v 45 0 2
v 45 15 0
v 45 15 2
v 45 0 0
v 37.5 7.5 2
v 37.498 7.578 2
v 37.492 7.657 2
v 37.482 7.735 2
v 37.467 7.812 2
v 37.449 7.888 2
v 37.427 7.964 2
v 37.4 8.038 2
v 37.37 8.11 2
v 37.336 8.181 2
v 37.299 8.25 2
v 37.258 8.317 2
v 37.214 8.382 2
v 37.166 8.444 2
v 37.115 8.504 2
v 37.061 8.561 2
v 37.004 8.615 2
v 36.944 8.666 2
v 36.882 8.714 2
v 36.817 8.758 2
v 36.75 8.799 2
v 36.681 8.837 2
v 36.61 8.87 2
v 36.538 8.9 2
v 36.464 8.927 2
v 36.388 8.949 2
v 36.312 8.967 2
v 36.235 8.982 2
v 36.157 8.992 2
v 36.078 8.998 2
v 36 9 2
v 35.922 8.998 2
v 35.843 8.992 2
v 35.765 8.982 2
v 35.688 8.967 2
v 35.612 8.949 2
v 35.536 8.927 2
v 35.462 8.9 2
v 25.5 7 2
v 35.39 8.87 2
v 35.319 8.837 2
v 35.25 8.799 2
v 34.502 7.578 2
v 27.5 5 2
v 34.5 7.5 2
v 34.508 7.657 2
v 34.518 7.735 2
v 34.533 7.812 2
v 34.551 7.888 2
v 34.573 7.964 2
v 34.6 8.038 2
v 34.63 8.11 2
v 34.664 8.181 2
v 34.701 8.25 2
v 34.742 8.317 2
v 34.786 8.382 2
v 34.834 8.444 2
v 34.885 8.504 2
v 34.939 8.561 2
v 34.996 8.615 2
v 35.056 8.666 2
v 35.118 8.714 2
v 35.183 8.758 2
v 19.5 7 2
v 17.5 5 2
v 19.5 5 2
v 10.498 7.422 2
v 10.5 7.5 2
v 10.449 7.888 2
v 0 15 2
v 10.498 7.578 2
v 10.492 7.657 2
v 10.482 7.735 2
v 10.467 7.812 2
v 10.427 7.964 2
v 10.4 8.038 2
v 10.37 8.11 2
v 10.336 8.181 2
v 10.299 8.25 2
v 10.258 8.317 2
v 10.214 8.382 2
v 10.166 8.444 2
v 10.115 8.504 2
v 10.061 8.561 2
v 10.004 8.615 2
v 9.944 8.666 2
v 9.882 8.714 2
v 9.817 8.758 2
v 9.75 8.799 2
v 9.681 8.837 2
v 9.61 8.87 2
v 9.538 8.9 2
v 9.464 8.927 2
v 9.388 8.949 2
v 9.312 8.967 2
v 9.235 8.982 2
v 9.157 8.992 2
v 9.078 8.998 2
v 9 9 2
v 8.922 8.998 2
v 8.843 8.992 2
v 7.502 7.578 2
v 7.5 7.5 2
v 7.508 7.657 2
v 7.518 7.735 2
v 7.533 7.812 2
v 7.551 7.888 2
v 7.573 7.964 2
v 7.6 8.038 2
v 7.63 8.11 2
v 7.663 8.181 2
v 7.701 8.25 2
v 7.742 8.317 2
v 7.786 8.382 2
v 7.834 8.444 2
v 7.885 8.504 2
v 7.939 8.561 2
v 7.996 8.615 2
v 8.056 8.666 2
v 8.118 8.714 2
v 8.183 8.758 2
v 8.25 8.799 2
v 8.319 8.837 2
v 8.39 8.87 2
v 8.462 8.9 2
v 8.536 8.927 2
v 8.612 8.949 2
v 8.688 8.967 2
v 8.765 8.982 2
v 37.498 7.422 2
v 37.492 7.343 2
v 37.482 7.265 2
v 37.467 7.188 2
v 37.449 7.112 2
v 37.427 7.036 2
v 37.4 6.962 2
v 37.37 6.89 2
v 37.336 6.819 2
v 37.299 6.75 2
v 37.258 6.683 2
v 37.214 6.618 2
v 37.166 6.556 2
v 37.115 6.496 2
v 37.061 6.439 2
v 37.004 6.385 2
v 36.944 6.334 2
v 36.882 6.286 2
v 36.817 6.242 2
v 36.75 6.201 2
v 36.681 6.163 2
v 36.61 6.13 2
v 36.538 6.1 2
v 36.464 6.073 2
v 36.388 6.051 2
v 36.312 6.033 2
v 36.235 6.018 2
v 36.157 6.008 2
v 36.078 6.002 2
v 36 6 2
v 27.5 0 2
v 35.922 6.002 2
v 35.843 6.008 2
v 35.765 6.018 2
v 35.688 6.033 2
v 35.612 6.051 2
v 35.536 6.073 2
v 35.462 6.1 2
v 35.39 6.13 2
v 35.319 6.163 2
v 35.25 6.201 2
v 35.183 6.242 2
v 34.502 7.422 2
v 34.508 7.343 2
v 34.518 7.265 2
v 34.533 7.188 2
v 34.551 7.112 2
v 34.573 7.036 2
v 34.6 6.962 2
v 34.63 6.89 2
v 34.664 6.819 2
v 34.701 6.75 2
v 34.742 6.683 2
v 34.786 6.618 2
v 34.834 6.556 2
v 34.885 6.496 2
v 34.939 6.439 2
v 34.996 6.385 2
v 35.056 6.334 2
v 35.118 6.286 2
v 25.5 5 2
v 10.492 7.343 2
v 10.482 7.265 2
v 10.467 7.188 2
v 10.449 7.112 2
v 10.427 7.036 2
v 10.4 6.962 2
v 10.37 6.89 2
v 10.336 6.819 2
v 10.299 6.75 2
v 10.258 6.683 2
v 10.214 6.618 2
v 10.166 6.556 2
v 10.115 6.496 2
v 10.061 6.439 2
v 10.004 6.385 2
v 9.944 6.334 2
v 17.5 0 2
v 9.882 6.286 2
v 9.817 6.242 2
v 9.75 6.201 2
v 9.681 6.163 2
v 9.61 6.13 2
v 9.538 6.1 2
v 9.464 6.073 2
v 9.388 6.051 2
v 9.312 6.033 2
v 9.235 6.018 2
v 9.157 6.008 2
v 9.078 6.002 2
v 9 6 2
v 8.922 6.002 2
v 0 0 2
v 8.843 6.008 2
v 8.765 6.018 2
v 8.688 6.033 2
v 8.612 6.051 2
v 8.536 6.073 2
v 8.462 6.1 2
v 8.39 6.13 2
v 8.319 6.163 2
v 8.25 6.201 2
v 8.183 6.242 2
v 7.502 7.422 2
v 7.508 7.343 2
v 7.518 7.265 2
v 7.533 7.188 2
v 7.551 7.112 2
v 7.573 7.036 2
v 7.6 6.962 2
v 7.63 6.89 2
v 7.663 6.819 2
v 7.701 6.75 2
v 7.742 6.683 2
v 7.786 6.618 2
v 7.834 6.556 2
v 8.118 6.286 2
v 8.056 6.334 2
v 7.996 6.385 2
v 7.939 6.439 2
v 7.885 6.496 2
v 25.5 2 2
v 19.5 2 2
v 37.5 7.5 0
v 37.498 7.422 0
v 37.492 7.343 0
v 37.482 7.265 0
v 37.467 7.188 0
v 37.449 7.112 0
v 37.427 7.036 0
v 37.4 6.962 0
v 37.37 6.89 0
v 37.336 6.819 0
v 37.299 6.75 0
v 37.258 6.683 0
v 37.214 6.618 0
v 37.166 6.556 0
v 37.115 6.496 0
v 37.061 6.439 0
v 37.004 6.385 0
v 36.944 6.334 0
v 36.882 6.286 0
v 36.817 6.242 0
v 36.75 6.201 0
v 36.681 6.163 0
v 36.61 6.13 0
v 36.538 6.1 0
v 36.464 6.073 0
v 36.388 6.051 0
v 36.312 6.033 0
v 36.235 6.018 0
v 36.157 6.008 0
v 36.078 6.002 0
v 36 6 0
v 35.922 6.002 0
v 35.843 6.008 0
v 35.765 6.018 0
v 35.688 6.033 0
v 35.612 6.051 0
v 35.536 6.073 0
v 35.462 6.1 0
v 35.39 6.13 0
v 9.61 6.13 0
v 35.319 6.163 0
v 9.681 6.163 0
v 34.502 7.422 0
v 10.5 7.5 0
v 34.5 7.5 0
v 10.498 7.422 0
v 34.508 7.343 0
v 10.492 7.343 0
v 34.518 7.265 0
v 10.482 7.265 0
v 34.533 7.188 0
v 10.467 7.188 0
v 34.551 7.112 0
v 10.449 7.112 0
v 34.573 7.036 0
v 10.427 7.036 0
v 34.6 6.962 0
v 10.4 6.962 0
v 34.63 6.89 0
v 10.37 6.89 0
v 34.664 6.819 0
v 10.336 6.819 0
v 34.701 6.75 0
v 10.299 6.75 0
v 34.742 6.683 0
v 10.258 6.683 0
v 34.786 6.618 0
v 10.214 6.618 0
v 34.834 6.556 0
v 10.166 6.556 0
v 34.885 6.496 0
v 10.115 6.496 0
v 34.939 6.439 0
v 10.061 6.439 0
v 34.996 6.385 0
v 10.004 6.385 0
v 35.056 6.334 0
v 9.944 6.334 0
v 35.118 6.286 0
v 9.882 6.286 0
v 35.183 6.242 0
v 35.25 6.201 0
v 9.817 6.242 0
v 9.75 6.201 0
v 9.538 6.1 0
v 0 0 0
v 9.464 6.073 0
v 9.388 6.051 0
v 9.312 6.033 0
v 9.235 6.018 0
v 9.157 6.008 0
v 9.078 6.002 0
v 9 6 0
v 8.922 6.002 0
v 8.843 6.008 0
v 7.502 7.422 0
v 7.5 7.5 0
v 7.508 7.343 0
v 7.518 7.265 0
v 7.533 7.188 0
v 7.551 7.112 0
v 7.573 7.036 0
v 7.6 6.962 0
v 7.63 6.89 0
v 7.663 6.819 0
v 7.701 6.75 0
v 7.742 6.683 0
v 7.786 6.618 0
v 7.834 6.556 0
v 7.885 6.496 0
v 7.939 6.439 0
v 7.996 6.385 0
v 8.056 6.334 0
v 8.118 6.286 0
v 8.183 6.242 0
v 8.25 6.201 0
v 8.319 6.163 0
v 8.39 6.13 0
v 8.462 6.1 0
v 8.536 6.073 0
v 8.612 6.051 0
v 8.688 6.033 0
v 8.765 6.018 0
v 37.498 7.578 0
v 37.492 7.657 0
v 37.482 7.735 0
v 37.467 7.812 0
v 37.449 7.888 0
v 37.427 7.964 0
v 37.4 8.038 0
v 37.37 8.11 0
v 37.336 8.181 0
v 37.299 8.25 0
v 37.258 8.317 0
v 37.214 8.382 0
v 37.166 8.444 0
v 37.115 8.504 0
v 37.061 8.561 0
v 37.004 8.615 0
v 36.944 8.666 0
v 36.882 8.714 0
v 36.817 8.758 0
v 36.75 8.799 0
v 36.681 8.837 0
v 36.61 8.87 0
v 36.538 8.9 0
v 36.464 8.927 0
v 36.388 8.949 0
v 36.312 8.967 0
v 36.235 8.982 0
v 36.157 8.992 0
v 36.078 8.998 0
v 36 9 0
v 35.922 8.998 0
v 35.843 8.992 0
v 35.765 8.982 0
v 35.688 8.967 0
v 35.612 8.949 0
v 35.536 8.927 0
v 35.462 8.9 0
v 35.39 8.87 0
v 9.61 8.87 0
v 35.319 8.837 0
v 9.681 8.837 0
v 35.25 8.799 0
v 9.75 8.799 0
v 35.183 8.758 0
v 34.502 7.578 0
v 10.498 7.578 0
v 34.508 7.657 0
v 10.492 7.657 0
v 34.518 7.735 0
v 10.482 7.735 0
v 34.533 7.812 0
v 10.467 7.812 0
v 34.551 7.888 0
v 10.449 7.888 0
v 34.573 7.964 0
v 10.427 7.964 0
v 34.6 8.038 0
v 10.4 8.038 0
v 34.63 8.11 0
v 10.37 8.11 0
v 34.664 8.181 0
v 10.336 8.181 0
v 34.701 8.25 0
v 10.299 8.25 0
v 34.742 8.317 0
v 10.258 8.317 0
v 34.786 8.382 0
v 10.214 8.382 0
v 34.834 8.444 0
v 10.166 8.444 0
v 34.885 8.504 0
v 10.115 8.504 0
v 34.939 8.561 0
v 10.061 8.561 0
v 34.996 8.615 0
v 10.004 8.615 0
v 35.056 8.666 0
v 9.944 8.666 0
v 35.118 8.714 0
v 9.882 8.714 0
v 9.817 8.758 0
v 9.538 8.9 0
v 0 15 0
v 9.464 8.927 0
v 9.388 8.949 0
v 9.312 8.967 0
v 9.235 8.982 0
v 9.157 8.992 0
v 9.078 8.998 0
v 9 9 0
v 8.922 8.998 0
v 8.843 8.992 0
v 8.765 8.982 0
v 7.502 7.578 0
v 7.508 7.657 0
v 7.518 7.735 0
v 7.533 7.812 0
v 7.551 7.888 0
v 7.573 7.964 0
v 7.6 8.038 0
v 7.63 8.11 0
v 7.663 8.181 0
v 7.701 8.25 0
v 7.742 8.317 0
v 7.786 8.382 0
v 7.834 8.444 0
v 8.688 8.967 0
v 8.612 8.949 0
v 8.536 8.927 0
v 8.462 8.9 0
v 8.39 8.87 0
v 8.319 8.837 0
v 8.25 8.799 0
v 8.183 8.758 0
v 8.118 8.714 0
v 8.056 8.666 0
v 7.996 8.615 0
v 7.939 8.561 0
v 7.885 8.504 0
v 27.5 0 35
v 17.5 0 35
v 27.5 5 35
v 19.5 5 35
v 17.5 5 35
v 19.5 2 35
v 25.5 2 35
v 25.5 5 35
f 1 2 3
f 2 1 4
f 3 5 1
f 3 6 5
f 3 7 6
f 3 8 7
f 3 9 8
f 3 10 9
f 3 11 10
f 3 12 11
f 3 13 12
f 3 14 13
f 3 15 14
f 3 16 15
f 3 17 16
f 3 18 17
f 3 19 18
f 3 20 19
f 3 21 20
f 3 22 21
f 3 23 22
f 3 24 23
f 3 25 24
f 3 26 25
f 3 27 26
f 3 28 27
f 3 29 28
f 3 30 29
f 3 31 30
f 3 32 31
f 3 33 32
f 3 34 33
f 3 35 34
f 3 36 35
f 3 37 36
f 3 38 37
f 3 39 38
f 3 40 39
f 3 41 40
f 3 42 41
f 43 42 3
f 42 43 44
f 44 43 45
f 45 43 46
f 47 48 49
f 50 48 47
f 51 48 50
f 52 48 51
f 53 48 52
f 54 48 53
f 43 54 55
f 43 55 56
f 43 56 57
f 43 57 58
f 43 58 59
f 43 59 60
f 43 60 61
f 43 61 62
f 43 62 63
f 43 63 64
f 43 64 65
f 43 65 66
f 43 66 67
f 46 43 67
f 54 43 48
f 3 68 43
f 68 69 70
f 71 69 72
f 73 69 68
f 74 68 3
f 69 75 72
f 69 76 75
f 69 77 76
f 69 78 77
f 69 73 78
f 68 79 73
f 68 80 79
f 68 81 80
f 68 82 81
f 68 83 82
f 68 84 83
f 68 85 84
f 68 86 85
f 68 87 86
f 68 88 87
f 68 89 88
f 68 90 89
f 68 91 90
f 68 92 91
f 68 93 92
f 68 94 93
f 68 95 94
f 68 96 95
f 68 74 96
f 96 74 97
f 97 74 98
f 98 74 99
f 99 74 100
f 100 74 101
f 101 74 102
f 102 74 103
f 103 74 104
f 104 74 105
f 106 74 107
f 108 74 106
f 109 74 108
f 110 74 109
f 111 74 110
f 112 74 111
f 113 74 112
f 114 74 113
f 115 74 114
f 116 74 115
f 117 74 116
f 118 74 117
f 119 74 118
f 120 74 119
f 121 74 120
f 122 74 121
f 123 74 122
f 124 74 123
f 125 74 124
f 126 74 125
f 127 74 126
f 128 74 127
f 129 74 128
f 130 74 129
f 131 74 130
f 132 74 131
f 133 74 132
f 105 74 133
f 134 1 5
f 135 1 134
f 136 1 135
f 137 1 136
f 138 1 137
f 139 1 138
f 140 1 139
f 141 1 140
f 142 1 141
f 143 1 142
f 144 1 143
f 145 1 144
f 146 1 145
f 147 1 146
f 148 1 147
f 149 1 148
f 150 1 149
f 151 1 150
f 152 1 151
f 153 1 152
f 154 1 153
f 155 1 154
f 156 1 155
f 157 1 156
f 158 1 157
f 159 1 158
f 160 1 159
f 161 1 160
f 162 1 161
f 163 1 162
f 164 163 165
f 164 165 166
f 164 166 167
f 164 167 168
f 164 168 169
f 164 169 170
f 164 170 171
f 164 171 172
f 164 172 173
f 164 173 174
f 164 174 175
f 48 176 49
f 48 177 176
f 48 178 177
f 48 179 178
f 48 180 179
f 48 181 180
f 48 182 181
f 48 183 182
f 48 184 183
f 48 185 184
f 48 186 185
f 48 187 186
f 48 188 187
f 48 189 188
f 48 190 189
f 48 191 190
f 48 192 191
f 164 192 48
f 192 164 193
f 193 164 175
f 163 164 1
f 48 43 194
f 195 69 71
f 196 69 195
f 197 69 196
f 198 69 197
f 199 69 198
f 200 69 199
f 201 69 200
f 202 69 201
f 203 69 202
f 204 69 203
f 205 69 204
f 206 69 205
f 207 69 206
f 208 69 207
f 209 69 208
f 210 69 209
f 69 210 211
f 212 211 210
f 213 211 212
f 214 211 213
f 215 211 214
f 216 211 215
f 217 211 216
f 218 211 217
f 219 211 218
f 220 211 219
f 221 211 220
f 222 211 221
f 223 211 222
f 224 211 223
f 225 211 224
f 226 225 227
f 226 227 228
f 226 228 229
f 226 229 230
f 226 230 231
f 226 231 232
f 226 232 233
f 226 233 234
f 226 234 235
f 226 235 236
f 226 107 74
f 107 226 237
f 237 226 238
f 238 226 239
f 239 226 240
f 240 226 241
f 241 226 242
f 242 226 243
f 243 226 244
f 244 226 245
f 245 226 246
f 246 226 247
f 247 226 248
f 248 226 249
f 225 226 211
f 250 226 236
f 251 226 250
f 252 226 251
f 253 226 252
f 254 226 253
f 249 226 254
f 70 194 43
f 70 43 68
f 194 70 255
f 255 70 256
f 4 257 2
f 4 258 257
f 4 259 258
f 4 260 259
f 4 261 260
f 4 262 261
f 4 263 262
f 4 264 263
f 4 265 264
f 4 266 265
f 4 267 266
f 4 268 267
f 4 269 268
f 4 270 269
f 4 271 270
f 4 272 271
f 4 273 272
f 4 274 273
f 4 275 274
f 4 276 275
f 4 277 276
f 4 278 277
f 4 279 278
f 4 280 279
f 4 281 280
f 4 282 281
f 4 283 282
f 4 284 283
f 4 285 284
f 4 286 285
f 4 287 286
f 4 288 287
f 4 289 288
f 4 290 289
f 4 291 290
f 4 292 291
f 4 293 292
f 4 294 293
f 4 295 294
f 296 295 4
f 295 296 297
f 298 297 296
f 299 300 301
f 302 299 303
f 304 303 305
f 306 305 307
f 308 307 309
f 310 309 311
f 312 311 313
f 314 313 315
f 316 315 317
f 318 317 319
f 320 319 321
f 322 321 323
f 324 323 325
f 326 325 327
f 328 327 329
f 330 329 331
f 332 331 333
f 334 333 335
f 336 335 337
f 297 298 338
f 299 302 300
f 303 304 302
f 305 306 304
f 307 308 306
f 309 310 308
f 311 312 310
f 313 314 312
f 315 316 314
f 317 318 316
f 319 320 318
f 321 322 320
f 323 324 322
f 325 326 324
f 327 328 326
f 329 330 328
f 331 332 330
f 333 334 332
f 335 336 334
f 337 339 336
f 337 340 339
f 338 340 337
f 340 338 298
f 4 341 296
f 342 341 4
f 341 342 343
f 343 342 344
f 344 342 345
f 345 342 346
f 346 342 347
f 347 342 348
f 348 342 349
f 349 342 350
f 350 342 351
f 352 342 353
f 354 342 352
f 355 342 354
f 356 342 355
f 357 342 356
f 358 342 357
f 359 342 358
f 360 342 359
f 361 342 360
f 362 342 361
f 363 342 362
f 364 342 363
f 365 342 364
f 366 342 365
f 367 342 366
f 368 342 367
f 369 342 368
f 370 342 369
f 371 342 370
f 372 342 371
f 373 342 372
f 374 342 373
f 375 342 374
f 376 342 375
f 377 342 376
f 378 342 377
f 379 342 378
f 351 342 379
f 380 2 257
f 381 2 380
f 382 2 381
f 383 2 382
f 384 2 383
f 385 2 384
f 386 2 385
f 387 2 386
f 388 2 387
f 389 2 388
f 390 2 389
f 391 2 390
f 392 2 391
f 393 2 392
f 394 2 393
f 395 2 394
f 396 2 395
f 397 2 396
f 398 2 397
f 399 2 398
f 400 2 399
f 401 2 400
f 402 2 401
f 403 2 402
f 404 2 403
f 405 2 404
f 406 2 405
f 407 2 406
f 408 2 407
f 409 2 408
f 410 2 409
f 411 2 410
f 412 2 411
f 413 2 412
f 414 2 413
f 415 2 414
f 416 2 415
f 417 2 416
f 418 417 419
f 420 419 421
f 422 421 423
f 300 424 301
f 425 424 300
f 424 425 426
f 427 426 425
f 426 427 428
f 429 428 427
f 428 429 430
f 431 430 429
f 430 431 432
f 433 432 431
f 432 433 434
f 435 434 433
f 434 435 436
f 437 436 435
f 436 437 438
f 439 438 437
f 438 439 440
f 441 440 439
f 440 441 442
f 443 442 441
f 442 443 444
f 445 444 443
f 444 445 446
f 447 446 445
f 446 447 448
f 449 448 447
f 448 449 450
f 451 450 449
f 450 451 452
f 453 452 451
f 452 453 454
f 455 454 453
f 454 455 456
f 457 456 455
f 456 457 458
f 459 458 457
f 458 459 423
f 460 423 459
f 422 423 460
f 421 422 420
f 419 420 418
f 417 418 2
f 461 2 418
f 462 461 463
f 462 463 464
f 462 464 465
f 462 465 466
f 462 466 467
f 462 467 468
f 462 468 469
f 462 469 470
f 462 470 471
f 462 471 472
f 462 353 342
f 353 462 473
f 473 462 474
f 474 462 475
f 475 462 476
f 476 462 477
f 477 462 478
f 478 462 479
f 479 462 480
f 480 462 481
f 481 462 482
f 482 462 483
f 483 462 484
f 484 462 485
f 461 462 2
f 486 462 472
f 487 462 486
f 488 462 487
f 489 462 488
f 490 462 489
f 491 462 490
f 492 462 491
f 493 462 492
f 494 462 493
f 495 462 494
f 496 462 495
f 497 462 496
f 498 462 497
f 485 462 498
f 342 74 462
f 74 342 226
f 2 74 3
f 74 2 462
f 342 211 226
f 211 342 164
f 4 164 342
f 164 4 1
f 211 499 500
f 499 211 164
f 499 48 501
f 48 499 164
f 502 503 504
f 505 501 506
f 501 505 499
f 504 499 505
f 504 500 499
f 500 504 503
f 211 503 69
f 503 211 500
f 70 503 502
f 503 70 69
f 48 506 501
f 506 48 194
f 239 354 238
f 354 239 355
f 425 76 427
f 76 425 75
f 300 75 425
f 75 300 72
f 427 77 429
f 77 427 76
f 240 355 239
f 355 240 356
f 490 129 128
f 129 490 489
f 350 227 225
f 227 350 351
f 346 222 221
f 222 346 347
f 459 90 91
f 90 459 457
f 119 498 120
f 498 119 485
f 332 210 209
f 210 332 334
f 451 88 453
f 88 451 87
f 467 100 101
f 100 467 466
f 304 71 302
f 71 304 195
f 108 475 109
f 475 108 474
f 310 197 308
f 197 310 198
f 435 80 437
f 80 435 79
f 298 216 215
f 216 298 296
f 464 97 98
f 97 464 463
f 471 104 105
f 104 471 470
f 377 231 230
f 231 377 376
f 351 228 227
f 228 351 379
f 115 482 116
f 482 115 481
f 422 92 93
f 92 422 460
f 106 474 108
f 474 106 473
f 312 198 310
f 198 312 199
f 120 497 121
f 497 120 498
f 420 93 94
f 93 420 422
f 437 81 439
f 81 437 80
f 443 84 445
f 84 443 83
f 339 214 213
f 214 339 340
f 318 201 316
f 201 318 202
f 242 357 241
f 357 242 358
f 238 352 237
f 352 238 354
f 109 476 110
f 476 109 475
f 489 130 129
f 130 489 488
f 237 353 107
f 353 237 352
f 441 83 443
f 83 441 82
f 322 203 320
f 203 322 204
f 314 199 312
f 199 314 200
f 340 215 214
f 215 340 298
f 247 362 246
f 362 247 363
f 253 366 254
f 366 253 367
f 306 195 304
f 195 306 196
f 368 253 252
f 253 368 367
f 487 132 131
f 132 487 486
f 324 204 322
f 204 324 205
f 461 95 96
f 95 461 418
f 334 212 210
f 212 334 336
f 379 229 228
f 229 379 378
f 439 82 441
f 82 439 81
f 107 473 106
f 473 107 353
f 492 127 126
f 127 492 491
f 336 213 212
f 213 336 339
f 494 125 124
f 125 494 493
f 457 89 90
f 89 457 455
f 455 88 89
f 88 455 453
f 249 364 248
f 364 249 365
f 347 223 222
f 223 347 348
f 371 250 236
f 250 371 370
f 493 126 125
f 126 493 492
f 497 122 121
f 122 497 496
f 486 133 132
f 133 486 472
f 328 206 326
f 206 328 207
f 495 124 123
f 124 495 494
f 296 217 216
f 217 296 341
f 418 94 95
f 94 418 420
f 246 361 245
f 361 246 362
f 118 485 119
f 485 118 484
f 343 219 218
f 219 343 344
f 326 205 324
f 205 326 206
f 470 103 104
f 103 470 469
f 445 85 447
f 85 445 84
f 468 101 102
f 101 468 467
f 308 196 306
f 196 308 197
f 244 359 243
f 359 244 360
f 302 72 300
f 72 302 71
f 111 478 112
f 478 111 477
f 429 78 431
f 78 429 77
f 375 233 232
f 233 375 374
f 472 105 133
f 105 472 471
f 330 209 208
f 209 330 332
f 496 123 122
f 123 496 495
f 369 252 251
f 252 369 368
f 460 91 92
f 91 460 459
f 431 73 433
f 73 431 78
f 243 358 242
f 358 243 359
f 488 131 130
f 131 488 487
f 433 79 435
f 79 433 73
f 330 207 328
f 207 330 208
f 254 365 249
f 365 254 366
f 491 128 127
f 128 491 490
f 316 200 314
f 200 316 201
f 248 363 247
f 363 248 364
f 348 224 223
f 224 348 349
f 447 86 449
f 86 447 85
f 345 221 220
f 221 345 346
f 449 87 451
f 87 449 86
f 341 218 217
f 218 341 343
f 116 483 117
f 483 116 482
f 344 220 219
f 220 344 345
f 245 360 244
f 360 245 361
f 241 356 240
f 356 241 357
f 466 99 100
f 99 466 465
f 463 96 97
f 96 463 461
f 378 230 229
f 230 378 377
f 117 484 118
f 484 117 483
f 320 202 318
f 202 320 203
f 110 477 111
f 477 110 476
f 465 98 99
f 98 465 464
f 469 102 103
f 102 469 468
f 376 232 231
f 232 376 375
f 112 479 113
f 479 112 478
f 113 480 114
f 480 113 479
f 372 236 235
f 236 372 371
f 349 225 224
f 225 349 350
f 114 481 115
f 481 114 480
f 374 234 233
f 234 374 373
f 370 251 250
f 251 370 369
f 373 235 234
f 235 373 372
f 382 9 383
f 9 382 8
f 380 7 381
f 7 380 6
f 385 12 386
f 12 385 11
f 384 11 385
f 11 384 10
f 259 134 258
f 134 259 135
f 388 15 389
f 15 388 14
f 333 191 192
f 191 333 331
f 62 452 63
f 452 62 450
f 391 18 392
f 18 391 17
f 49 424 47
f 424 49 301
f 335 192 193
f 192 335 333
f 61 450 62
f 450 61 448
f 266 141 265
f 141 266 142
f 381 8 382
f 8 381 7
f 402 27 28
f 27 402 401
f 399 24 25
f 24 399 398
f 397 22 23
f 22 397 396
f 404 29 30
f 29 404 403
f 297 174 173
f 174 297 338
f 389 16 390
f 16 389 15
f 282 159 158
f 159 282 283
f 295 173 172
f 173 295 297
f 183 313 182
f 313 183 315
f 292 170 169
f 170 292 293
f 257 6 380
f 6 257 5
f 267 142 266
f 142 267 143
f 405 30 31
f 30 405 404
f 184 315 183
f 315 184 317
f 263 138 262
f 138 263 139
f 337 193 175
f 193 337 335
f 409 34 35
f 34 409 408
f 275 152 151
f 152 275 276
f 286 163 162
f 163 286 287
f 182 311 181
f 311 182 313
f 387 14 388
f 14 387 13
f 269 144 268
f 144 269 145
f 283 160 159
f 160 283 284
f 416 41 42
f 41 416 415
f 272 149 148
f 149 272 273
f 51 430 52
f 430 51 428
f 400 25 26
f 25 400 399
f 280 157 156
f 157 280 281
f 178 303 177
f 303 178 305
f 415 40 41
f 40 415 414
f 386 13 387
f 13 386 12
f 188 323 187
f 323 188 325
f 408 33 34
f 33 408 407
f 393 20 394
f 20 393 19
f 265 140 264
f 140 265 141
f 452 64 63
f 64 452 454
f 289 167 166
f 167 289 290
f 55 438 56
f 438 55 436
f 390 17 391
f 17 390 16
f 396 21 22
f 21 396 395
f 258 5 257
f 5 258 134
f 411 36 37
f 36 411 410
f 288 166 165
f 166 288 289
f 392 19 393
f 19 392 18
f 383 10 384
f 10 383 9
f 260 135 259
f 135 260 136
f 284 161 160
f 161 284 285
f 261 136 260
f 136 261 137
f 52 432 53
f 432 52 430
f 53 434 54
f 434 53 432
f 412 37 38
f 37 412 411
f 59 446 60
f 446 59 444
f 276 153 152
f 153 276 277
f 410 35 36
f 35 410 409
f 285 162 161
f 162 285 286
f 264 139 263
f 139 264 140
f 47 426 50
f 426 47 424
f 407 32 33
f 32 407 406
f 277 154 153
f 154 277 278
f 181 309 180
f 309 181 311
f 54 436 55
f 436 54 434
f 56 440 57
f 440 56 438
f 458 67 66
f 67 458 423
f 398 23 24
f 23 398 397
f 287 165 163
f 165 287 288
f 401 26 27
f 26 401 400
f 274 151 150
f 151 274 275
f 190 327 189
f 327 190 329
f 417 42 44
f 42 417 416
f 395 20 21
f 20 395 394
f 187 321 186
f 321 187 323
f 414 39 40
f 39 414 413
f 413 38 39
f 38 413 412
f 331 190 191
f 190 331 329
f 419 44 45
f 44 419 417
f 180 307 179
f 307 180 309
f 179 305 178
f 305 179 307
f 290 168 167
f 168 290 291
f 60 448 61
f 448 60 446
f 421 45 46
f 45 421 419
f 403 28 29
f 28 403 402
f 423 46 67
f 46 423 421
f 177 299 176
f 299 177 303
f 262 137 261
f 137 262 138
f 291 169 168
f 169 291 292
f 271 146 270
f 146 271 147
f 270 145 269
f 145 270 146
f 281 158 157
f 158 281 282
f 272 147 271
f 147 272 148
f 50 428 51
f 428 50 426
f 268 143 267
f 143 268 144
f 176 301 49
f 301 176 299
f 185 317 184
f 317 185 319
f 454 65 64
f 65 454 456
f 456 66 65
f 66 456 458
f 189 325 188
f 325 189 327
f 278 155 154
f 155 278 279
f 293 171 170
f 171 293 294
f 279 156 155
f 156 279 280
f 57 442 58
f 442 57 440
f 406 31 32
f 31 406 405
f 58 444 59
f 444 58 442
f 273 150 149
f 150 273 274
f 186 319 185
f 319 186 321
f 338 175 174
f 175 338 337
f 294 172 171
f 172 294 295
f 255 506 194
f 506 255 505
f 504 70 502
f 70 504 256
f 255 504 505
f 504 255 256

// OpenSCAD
//
// Quick & Dirty ESP-CAM mount for remote controlled car project
//

width = 45;
length = 15;
height = 2;

pillar_width = 10;
pillar_depth = 5;
pillar_height = 35;

screw_distance = 27;
screw_diameter = 3;

difference() {
    // mount parts
    union() {
        // Base
        cube([width, length, height]);
        
        // Pillar
        translate([(width/2) - (pillar_width/2), 0, 0]) {
            cube([pillar_width, pillar_depth, pillar_height]);
        }
    }
    
    // Screw mounting holes
    translate([(width - screw_distance)/2, length/2, -1]) {
        cylinder(h = height + 2, d = screw_diameter, $fn = 120);
    }
    
    translate([width - (width - screw_distance)/2, length/2, -1]) {
        cylinder(h = height + 2, d = screw_diameter, $fn = 120);
    }
    
    // Pillar cut-out (to save print time)
    translate([(width/2) - (pillar_width/2) + 2, 2, height]) {
        cube([pillar_width - 4, pillar_depth, pillar_height]);
    }
}
